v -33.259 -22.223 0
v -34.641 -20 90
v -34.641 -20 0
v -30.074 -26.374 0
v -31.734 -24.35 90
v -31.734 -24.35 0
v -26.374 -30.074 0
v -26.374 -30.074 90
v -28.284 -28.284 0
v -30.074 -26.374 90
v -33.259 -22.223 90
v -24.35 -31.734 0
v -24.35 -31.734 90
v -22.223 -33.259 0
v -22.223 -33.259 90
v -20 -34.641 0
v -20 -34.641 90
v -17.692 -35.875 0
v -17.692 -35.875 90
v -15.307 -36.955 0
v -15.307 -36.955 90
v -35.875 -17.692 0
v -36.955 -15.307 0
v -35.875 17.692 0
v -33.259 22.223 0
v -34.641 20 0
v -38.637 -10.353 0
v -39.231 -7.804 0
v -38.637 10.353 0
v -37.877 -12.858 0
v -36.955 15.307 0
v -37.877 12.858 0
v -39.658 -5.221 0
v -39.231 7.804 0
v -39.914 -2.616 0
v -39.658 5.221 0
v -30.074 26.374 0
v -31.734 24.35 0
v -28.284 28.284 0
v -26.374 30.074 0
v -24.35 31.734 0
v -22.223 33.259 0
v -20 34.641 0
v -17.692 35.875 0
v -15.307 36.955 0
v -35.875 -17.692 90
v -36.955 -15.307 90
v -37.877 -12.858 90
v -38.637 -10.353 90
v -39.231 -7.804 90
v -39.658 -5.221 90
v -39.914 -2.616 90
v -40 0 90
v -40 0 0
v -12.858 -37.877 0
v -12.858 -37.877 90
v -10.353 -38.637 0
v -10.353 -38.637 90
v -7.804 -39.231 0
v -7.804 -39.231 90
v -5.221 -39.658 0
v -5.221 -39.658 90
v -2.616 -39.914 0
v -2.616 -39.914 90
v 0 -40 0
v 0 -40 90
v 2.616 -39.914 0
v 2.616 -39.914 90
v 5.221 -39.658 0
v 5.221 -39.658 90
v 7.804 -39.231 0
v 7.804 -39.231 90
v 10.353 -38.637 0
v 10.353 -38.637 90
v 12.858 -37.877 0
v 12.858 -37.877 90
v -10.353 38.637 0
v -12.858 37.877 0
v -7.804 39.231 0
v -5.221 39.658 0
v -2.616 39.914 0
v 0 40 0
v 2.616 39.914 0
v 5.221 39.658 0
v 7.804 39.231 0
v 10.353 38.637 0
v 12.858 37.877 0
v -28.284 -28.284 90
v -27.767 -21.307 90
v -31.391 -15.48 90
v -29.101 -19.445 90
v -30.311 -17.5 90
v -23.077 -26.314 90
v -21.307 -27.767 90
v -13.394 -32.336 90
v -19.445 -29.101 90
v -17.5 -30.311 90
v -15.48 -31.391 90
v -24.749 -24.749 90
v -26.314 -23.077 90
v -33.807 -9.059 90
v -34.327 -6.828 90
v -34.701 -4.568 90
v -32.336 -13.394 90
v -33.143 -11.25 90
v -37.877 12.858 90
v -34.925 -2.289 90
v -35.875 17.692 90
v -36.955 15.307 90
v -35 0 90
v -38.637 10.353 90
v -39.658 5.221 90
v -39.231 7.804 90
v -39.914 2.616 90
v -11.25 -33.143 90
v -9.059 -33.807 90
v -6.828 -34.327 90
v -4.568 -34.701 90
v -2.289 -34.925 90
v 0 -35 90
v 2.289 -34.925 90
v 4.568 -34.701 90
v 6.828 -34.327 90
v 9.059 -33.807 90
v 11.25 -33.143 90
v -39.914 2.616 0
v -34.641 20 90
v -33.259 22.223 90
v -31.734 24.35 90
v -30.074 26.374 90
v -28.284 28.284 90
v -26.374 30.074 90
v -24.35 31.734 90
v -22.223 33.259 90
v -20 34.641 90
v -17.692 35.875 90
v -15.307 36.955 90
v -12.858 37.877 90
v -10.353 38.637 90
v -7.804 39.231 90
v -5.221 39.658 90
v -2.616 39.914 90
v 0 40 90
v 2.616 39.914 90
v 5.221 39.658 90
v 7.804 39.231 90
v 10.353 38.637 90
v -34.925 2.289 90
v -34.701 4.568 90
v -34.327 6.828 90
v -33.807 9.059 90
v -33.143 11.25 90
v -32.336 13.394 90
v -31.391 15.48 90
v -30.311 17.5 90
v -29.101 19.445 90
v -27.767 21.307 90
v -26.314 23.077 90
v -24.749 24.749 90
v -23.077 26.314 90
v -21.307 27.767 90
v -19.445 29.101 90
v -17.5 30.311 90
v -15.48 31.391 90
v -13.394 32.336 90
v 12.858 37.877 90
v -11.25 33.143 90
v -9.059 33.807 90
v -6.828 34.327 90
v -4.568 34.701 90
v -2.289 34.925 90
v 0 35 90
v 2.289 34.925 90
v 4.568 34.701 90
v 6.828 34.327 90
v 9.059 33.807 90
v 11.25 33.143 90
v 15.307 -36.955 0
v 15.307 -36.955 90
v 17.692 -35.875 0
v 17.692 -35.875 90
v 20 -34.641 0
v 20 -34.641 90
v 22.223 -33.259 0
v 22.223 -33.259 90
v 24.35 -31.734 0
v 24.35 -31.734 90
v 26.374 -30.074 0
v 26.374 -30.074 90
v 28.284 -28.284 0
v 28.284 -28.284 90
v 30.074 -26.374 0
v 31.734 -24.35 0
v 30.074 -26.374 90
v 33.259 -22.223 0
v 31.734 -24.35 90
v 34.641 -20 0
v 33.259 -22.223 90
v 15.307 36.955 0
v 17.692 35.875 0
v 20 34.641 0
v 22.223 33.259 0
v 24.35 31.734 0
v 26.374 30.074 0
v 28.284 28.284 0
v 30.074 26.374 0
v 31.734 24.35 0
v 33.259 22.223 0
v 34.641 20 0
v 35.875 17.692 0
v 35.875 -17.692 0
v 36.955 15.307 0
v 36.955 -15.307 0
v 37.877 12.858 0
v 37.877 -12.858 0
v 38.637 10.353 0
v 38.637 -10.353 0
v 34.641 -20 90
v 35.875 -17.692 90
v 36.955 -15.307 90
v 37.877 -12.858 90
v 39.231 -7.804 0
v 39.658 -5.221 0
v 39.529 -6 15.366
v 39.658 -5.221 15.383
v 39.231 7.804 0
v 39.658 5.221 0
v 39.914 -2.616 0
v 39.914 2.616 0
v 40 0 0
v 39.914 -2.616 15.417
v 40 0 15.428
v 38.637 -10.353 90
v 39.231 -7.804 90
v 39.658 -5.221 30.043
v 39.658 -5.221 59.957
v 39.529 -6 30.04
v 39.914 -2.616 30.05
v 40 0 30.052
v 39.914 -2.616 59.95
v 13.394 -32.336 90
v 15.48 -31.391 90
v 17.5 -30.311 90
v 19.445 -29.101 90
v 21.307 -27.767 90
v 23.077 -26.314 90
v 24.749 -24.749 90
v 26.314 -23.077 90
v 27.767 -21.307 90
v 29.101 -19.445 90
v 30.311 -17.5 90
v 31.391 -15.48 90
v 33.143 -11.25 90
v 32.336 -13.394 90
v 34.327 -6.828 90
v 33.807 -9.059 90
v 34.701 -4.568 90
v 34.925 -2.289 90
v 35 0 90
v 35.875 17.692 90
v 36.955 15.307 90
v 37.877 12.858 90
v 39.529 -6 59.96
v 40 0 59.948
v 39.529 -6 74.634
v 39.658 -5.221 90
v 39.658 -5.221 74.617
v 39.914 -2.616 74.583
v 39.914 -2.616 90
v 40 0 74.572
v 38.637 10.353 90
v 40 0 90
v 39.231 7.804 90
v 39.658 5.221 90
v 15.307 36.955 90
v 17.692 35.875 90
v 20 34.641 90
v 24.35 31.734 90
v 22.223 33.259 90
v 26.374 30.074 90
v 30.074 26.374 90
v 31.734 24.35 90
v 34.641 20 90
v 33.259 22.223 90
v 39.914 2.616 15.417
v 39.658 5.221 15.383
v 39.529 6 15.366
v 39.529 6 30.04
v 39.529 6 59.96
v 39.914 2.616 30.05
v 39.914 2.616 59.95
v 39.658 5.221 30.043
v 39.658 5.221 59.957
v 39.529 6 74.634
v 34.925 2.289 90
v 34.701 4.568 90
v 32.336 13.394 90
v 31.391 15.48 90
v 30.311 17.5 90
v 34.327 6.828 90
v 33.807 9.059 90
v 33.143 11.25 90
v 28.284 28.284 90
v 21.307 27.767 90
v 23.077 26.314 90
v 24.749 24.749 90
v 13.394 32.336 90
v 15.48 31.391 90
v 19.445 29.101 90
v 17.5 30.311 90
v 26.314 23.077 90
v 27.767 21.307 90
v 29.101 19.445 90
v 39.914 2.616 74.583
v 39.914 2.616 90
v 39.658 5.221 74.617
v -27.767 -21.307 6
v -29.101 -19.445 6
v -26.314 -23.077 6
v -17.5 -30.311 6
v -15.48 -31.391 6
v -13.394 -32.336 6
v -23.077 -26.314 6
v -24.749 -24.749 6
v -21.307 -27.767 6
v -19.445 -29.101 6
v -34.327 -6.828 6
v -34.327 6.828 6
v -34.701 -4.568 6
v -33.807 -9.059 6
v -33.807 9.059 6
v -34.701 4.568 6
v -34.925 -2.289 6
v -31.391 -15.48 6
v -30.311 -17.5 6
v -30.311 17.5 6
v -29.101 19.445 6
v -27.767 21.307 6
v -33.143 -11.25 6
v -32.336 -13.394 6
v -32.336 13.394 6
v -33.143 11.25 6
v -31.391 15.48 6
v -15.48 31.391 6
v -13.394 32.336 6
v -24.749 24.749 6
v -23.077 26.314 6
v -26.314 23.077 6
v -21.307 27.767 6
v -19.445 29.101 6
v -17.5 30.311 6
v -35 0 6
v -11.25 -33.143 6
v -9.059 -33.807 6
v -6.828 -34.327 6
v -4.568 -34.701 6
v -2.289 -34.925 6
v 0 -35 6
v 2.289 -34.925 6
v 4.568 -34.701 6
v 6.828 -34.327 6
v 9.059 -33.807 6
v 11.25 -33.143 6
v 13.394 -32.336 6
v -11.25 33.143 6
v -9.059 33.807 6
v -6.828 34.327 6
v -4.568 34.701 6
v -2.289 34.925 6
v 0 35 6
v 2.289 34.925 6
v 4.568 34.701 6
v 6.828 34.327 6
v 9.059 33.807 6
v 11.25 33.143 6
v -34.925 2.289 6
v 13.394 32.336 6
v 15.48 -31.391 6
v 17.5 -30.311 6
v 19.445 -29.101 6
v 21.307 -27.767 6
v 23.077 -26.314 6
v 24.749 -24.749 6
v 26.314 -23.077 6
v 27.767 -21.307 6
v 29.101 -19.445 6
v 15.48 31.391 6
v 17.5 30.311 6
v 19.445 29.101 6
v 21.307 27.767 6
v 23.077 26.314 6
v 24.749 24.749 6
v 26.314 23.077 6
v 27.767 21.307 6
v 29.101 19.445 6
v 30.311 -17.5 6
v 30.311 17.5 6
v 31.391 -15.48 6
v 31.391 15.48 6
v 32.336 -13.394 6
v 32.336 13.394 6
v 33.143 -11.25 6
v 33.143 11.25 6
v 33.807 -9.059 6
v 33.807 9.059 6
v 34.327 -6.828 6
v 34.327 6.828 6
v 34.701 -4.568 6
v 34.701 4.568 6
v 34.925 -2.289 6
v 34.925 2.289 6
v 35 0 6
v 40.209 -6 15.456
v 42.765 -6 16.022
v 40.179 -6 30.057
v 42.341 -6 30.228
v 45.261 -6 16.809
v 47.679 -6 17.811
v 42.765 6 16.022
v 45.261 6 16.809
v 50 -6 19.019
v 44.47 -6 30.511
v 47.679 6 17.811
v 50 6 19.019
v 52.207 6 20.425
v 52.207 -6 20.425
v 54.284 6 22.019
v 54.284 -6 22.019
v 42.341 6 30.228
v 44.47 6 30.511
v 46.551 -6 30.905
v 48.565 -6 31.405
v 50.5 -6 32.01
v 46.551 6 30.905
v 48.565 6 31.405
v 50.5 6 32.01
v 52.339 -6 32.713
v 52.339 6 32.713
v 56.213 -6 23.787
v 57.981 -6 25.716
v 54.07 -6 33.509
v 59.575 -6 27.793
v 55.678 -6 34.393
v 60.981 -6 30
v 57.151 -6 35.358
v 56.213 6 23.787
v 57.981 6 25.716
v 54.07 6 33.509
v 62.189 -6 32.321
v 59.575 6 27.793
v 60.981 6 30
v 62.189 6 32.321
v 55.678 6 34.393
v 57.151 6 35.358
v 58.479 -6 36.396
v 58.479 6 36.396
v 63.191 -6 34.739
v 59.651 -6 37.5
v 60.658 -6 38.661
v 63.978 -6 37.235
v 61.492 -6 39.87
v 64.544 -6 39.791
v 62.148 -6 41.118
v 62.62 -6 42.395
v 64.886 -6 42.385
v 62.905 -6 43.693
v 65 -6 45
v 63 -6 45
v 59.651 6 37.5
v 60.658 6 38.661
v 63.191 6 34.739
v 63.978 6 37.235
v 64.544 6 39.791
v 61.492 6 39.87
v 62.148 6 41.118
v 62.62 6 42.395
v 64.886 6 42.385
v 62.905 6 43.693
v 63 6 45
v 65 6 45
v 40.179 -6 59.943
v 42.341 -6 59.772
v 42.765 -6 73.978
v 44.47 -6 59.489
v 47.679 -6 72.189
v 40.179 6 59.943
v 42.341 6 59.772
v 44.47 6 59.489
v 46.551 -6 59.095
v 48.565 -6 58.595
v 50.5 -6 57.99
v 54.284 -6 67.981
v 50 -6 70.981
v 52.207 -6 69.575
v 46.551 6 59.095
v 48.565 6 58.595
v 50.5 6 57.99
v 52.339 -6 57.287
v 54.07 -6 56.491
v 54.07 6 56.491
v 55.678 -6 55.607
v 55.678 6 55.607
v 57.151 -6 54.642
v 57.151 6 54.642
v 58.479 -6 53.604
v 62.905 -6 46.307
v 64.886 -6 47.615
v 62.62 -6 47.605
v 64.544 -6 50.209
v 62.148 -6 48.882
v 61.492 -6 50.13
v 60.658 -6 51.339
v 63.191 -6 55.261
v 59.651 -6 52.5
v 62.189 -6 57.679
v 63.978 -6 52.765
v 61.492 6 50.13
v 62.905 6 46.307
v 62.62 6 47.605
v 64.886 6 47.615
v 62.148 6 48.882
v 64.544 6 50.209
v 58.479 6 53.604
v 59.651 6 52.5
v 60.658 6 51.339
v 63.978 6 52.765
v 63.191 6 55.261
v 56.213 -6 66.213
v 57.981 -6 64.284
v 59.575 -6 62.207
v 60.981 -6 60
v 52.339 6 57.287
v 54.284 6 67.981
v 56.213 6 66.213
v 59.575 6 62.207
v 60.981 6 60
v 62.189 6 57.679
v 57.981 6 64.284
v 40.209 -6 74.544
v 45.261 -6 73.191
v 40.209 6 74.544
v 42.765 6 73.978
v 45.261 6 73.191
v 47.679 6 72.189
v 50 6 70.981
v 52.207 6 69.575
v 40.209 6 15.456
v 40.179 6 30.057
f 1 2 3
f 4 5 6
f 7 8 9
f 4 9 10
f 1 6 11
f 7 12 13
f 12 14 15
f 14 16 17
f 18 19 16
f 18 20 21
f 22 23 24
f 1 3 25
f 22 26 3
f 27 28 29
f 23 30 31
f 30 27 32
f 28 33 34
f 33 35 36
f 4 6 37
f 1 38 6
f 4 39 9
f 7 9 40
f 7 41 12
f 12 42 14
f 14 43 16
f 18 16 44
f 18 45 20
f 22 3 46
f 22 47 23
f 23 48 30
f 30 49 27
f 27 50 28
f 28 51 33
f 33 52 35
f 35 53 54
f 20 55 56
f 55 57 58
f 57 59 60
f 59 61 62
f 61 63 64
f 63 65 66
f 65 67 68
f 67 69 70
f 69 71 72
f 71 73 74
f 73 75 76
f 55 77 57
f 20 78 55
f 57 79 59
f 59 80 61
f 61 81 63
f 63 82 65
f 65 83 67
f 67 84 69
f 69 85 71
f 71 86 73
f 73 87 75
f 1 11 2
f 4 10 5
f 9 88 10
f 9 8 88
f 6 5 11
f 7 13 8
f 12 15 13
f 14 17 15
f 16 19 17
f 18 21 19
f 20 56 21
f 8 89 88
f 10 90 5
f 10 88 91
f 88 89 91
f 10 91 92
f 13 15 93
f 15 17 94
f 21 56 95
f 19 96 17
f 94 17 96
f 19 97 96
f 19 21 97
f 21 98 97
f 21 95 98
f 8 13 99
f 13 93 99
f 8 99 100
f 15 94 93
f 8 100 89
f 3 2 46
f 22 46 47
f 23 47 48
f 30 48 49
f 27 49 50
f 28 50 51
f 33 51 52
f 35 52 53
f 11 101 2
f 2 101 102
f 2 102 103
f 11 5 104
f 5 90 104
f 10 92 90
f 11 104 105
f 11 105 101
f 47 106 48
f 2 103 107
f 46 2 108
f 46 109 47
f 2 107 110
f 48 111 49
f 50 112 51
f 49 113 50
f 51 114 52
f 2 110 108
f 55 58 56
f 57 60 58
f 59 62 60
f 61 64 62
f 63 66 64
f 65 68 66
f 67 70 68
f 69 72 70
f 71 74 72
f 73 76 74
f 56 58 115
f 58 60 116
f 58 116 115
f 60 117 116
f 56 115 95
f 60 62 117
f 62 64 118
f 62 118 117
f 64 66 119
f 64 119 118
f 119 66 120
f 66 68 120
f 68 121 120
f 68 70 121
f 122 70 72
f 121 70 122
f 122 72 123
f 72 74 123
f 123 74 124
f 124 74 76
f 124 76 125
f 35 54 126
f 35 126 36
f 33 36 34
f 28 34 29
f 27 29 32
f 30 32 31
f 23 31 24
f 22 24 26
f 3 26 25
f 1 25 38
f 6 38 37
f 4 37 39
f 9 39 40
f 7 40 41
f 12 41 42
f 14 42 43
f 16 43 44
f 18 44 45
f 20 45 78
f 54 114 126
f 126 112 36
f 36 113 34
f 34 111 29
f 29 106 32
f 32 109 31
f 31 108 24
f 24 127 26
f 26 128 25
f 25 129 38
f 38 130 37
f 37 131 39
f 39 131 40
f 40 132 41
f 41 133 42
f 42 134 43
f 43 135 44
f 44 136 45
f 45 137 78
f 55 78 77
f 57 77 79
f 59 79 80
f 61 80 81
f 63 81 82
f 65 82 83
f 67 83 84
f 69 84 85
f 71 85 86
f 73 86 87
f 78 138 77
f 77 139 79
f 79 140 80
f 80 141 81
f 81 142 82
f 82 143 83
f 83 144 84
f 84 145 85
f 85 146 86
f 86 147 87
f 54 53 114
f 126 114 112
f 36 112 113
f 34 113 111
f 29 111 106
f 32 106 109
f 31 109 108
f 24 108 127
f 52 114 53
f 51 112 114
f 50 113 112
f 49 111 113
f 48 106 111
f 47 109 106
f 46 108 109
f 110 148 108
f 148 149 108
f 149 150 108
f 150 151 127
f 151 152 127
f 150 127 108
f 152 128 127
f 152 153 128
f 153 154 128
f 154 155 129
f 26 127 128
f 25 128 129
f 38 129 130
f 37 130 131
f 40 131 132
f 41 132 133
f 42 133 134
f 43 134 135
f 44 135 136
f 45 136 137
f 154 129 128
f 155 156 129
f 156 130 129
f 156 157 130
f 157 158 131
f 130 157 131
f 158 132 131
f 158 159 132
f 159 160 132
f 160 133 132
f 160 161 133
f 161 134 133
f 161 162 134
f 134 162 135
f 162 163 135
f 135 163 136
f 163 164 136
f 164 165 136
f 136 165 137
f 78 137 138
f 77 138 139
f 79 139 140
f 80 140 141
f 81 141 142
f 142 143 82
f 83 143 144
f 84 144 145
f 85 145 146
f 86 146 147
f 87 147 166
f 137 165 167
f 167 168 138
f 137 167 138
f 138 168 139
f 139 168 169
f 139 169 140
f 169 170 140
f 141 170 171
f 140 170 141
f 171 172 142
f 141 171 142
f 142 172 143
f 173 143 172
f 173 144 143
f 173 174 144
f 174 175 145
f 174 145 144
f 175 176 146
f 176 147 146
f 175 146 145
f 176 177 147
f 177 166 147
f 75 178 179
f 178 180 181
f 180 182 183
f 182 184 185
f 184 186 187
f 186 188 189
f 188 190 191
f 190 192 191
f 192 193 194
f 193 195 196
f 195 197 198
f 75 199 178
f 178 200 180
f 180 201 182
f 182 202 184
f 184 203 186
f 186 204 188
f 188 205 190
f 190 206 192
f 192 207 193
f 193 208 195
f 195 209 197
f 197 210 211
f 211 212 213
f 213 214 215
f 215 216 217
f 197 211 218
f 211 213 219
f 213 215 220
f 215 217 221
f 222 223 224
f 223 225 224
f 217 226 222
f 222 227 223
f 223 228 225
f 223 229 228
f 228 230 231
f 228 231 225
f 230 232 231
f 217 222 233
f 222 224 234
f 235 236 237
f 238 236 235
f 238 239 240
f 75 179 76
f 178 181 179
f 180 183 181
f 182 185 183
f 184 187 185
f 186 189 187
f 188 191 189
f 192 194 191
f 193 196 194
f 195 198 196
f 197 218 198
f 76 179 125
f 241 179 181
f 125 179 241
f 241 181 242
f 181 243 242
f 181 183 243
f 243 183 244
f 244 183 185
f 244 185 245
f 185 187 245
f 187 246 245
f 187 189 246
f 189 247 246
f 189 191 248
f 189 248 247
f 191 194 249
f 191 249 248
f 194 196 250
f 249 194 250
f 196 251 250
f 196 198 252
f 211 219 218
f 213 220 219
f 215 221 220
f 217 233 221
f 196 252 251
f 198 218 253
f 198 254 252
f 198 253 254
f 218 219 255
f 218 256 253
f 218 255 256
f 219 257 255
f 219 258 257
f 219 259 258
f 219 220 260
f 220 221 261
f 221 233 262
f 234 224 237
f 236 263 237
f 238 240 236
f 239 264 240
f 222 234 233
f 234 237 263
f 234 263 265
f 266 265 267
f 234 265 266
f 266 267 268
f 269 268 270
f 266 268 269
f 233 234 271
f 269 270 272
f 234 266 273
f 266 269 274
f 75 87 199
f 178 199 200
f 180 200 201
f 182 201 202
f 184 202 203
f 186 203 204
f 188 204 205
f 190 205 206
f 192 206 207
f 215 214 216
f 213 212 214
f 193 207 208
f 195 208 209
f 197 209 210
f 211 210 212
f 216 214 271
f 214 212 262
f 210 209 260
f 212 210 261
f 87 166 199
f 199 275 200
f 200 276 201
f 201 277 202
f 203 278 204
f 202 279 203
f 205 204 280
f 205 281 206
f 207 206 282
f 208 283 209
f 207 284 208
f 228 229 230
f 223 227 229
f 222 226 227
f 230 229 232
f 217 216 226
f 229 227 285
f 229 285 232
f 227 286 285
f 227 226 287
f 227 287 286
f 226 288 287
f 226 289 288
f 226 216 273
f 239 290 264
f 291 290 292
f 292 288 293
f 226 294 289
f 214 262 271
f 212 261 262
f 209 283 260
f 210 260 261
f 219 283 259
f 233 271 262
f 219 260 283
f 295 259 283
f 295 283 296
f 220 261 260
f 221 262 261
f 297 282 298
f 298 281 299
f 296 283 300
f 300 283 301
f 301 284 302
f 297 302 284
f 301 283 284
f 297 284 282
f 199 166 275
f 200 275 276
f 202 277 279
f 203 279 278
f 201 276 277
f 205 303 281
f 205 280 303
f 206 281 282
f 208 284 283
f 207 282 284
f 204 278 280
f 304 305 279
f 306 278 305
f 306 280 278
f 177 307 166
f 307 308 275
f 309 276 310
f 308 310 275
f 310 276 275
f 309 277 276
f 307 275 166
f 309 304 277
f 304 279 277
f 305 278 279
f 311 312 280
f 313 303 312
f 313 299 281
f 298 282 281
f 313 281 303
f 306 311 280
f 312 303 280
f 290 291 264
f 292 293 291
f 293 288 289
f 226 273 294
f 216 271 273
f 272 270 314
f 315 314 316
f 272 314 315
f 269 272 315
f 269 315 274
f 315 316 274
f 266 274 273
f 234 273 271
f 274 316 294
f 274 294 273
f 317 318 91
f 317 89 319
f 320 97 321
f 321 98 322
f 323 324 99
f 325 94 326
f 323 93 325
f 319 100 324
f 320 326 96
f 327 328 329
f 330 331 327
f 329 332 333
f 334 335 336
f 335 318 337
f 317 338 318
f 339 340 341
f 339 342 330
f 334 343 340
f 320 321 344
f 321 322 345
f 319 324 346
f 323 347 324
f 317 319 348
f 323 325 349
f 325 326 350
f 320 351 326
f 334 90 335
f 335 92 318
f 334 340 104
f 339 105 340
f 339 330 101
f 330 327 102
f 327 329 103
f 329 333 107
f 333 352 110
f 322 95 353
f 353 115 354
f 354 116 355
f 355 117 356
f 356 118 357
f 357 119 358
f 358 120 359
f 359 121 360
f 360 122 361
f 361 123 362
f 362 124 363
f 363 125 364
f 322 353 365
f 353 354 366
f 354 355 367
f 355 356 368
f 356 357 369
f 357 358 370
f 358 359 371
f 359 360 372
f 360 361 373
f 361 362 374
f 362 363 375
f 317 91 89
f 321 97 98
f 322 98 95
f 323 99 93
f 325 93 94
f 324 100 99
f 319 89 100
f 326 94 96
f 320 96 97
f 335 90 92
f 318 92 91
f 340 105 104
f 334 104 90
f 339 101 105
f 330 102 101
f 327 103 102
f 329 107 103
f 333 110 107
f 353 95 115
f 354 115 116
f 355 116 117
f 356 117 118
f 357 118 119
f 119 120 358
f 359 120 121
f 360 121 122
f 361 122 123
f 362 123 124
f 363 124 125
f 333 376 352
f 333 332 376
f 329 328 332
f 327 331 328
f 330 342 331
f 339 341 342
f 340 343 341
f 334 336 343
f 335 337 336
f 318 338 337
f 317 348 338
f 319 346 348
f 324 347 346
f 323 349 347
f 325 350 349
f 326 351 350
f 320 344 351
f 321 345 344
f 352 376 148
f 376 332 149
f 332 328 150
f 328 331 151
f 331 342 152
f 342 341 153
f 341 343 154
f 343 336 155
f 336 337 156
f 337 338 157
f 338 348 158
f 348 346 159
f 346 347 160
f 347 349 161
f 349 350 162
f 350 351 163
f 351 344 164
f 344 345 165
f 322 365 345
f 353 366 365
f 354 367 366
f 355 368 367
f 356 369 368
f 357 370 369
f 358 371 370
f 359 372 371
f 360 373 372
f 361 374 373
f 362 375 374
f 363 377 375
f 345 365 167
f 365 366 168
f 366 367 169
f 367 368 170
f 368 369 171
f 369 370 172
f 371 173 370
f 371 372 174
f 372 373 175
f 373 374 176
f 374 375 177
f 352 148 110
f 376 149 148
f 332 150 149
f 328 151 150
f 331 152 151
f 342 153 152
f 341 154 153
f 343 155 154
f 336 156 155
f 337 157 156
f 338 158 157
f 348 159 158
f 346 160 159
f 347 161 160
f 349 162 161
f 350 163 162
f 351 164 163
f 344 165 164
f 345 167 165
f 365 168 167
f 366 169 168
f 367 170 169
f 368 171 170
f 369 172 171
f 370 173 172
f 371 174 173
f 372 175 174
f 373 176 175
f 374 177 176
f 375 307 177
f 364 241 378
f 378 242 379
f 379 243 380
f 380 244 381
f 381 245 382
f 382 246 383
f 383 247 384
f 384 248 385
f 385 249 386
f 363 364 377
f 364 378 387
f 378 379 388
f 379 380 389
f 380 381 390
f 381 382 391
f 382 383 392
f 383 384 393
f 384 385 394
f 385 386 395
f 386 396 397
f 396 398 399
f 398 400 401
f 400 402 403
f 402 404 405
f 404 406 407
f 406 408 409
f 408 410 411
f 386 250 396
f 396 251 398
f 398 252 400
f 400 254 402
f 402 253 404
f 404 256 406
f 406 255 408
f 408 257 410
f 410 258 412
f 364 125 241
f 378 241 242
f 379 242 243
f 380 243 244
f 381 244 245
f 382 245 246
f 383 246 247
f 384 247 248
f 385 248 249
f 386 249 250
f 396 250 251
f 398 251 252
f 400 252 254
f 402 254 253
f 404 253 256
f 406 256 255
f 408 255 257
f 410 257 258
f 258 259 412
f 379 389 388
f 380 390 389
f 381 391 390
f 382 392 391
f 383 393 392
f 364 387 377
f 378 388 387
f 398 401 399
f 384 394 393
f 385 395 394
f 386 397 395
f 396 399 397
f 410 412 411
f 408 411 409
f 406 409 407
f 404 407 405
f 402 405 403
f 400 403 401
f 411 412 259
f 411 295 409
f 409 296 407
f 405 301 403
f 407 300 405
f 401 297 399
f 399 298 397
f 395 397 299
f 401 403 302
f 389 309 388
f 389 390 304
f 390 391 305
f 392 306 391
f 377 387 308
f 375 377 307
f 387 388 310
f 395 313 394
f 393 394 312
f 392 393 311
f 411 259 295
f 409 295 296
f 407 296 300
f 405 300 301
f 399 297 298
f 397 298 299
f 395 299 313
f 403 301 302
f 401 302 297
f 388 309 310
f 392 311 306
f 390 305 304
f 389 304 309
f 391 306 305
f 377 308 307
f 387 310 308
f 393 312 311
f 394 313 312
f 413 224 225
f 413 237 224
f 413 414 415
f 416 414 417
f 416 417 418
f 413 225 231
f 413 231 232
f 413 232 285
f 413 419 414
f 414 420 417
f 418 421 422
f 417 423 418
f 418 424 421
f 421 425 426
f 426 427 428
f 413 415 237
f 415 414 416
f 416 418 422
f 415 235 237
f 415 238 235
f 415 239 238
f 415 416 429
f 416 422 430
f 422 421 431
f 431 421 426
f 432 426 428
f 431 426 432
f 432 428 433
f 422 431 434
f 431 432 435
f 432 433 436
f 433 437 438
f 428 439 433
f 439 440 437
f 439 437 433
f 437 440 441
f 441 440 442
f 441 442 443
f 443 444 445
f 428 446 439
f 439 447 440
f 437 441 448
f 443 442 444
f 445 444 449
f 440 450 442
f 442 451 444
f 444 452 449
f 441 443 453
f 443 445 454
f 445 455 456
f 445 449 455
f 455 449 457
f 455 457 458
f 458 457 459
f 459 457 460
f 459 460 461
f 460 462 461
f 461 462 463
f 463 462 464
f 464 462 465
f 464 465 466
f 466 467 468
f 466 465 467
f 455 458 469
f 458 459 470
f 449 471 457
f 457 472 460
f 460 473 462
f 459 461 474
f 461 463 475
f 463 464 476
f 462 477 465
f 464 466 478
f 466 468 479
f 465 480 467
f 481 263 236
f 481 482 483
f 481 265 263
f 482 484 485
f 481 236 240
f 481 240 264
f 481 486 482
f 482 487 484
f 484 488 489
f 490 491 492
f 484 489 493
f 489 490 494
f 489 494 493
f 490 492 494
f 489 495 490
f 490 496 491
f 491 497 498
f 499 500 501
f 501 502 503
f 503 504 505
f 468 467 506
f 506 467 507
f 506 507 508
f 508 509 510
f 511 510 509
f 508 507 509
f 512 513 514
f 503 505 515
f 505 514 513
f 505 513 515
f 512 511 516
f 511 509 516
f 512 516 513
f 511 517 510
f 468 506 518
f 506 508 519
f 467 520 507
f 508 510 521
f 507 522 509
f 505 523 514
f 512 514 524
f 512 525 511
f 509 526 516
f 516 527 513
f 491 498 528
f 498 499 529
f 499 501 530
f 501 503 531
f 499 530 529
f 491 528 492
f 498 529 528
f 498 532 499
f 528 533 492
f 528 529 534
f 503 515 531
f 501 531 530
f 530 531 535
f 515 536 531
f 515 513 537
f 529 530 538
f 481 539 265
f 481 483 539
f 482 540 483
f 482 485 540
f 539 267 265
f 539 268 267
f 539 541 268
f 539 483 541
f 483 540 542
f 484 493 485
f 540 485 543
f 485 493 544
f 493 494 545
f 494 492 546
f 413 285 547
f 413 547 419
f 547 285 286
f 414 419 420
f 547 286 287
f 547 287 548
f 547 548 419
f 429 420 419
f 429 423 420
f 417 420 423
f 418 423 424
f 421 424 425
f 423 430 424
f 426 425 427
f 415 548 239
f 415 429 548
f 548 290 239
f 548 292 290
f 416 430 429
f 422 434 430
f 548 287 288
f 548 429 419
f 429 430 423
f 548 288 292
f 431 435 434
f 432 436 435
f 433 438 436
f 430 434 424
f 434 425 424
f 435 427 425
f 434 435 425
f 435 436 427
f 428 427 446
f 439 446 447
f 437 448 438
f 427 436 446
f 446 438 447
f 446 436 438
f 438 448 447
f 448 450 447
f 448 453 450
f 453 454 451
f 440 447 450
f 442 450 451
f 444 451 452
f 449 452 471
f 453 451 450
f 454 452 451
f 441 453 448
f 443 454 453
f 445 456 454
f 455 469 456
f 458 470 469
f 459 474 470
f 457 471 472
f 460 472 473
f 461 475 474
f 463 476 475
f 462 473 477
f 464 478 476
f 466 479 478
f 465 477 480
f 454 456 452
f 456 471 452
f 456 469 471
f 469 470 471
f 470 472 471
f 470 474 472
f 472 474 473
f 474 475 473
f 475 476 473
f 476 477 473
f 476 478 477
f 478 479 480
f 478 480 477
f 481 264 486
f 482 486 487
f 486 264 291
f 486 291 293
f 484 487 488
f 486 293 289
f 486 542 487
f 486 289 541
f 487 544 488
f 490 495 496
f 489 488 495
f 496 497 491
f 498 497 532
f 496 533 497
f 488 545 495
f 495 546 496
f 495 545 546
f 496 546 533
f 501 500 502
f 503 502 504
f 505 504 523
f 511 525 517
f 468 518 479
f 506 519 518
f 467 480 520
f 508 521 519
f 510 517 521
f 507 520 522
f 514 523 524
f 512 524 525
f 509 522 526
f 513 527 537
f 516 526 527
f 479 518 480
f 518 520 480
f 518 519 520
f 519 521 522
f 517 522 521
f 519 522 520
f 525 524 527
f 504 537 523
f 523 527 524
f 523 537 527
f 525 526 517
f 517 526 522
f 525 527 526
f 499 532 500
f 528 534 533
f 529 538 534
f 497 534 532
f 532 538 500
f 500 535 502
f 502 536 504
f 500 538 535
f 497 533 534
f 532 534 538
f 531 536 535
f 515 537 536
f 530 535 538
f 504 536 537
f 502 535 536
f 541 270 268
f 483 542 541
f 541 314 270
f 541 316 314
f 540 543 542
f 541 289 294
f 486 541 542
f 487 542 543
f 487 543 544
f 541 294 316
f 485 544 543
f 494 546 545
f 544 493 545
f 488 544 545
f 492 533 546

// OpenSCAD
$fn = 96;

// マグ本体寸法
outer_diameter = 80;
inner_diameter = 70;
mug_height     = 90;
bottom_thick   = 6;

// 取手寸法
handle_depth      = 12;   // Y方向の厚み
handle_center_z   = 45;   // 高さ方向中央
handle_outer_r    = 30;   // 外側半円半径
handle_flat_x     = 35;   // 本体に食い込ませる直線側X座標

// 内側開口: 幅25mm × 高さ30mm
handle_inner_x    = 38;
handle_inner_rx   = 25;
handle_inner_ry   = 15;

// D字取手の2D断面
module handle_profile_2d() {
    difference() {
        // 外側: 本体側が直線、外側が半円のD字
        polygon(points =
            concat(
                [
                    for (a = [-90 : 5 : 85])
                        [
                            handle_flat_x + handle_outer_r * cos(a),
                            handle_center_z + handle_outer_r * sin(a)
                        ]
                ],
                [[handle_flat_x, handle_center_z + handle_outer_r]]
            )
        );

        // 指を入れる内側空間: 幅25mm、高さ30mm
        polygon(points =
            concat(
                [
                    for (a = [-90 : 5 : 85])
                        [
                            handle_inner_x + handle_inner_rx * cos(a),
                            handle_center_z + handle_inner_ry * sin(a)
                        ]
                ],
                [[handle_inner_x, handle_center_z + handle_inner_ry]]
            )
        );
    }
}

union() {
    // 中空マグ本体
    difference() {
        cylinder(d = outer_diameter, h = mug_height);

        // 底厚6mmを残して上面を開放
        translate([0, 0, bottom_thick])
            cylinder(d = inner_diameter, h = mug_height - bottom_thick + 1);
    }

    // +X方向側面にのみ接続する取手
    // 本体外周へ十分に食い込ませてunionする
    translate([0, handle_depth / 2, 0])
        rotate([90, 0, 0])
            linear_extrude(height = handle_depth)
                handle_profile_2d();
}
